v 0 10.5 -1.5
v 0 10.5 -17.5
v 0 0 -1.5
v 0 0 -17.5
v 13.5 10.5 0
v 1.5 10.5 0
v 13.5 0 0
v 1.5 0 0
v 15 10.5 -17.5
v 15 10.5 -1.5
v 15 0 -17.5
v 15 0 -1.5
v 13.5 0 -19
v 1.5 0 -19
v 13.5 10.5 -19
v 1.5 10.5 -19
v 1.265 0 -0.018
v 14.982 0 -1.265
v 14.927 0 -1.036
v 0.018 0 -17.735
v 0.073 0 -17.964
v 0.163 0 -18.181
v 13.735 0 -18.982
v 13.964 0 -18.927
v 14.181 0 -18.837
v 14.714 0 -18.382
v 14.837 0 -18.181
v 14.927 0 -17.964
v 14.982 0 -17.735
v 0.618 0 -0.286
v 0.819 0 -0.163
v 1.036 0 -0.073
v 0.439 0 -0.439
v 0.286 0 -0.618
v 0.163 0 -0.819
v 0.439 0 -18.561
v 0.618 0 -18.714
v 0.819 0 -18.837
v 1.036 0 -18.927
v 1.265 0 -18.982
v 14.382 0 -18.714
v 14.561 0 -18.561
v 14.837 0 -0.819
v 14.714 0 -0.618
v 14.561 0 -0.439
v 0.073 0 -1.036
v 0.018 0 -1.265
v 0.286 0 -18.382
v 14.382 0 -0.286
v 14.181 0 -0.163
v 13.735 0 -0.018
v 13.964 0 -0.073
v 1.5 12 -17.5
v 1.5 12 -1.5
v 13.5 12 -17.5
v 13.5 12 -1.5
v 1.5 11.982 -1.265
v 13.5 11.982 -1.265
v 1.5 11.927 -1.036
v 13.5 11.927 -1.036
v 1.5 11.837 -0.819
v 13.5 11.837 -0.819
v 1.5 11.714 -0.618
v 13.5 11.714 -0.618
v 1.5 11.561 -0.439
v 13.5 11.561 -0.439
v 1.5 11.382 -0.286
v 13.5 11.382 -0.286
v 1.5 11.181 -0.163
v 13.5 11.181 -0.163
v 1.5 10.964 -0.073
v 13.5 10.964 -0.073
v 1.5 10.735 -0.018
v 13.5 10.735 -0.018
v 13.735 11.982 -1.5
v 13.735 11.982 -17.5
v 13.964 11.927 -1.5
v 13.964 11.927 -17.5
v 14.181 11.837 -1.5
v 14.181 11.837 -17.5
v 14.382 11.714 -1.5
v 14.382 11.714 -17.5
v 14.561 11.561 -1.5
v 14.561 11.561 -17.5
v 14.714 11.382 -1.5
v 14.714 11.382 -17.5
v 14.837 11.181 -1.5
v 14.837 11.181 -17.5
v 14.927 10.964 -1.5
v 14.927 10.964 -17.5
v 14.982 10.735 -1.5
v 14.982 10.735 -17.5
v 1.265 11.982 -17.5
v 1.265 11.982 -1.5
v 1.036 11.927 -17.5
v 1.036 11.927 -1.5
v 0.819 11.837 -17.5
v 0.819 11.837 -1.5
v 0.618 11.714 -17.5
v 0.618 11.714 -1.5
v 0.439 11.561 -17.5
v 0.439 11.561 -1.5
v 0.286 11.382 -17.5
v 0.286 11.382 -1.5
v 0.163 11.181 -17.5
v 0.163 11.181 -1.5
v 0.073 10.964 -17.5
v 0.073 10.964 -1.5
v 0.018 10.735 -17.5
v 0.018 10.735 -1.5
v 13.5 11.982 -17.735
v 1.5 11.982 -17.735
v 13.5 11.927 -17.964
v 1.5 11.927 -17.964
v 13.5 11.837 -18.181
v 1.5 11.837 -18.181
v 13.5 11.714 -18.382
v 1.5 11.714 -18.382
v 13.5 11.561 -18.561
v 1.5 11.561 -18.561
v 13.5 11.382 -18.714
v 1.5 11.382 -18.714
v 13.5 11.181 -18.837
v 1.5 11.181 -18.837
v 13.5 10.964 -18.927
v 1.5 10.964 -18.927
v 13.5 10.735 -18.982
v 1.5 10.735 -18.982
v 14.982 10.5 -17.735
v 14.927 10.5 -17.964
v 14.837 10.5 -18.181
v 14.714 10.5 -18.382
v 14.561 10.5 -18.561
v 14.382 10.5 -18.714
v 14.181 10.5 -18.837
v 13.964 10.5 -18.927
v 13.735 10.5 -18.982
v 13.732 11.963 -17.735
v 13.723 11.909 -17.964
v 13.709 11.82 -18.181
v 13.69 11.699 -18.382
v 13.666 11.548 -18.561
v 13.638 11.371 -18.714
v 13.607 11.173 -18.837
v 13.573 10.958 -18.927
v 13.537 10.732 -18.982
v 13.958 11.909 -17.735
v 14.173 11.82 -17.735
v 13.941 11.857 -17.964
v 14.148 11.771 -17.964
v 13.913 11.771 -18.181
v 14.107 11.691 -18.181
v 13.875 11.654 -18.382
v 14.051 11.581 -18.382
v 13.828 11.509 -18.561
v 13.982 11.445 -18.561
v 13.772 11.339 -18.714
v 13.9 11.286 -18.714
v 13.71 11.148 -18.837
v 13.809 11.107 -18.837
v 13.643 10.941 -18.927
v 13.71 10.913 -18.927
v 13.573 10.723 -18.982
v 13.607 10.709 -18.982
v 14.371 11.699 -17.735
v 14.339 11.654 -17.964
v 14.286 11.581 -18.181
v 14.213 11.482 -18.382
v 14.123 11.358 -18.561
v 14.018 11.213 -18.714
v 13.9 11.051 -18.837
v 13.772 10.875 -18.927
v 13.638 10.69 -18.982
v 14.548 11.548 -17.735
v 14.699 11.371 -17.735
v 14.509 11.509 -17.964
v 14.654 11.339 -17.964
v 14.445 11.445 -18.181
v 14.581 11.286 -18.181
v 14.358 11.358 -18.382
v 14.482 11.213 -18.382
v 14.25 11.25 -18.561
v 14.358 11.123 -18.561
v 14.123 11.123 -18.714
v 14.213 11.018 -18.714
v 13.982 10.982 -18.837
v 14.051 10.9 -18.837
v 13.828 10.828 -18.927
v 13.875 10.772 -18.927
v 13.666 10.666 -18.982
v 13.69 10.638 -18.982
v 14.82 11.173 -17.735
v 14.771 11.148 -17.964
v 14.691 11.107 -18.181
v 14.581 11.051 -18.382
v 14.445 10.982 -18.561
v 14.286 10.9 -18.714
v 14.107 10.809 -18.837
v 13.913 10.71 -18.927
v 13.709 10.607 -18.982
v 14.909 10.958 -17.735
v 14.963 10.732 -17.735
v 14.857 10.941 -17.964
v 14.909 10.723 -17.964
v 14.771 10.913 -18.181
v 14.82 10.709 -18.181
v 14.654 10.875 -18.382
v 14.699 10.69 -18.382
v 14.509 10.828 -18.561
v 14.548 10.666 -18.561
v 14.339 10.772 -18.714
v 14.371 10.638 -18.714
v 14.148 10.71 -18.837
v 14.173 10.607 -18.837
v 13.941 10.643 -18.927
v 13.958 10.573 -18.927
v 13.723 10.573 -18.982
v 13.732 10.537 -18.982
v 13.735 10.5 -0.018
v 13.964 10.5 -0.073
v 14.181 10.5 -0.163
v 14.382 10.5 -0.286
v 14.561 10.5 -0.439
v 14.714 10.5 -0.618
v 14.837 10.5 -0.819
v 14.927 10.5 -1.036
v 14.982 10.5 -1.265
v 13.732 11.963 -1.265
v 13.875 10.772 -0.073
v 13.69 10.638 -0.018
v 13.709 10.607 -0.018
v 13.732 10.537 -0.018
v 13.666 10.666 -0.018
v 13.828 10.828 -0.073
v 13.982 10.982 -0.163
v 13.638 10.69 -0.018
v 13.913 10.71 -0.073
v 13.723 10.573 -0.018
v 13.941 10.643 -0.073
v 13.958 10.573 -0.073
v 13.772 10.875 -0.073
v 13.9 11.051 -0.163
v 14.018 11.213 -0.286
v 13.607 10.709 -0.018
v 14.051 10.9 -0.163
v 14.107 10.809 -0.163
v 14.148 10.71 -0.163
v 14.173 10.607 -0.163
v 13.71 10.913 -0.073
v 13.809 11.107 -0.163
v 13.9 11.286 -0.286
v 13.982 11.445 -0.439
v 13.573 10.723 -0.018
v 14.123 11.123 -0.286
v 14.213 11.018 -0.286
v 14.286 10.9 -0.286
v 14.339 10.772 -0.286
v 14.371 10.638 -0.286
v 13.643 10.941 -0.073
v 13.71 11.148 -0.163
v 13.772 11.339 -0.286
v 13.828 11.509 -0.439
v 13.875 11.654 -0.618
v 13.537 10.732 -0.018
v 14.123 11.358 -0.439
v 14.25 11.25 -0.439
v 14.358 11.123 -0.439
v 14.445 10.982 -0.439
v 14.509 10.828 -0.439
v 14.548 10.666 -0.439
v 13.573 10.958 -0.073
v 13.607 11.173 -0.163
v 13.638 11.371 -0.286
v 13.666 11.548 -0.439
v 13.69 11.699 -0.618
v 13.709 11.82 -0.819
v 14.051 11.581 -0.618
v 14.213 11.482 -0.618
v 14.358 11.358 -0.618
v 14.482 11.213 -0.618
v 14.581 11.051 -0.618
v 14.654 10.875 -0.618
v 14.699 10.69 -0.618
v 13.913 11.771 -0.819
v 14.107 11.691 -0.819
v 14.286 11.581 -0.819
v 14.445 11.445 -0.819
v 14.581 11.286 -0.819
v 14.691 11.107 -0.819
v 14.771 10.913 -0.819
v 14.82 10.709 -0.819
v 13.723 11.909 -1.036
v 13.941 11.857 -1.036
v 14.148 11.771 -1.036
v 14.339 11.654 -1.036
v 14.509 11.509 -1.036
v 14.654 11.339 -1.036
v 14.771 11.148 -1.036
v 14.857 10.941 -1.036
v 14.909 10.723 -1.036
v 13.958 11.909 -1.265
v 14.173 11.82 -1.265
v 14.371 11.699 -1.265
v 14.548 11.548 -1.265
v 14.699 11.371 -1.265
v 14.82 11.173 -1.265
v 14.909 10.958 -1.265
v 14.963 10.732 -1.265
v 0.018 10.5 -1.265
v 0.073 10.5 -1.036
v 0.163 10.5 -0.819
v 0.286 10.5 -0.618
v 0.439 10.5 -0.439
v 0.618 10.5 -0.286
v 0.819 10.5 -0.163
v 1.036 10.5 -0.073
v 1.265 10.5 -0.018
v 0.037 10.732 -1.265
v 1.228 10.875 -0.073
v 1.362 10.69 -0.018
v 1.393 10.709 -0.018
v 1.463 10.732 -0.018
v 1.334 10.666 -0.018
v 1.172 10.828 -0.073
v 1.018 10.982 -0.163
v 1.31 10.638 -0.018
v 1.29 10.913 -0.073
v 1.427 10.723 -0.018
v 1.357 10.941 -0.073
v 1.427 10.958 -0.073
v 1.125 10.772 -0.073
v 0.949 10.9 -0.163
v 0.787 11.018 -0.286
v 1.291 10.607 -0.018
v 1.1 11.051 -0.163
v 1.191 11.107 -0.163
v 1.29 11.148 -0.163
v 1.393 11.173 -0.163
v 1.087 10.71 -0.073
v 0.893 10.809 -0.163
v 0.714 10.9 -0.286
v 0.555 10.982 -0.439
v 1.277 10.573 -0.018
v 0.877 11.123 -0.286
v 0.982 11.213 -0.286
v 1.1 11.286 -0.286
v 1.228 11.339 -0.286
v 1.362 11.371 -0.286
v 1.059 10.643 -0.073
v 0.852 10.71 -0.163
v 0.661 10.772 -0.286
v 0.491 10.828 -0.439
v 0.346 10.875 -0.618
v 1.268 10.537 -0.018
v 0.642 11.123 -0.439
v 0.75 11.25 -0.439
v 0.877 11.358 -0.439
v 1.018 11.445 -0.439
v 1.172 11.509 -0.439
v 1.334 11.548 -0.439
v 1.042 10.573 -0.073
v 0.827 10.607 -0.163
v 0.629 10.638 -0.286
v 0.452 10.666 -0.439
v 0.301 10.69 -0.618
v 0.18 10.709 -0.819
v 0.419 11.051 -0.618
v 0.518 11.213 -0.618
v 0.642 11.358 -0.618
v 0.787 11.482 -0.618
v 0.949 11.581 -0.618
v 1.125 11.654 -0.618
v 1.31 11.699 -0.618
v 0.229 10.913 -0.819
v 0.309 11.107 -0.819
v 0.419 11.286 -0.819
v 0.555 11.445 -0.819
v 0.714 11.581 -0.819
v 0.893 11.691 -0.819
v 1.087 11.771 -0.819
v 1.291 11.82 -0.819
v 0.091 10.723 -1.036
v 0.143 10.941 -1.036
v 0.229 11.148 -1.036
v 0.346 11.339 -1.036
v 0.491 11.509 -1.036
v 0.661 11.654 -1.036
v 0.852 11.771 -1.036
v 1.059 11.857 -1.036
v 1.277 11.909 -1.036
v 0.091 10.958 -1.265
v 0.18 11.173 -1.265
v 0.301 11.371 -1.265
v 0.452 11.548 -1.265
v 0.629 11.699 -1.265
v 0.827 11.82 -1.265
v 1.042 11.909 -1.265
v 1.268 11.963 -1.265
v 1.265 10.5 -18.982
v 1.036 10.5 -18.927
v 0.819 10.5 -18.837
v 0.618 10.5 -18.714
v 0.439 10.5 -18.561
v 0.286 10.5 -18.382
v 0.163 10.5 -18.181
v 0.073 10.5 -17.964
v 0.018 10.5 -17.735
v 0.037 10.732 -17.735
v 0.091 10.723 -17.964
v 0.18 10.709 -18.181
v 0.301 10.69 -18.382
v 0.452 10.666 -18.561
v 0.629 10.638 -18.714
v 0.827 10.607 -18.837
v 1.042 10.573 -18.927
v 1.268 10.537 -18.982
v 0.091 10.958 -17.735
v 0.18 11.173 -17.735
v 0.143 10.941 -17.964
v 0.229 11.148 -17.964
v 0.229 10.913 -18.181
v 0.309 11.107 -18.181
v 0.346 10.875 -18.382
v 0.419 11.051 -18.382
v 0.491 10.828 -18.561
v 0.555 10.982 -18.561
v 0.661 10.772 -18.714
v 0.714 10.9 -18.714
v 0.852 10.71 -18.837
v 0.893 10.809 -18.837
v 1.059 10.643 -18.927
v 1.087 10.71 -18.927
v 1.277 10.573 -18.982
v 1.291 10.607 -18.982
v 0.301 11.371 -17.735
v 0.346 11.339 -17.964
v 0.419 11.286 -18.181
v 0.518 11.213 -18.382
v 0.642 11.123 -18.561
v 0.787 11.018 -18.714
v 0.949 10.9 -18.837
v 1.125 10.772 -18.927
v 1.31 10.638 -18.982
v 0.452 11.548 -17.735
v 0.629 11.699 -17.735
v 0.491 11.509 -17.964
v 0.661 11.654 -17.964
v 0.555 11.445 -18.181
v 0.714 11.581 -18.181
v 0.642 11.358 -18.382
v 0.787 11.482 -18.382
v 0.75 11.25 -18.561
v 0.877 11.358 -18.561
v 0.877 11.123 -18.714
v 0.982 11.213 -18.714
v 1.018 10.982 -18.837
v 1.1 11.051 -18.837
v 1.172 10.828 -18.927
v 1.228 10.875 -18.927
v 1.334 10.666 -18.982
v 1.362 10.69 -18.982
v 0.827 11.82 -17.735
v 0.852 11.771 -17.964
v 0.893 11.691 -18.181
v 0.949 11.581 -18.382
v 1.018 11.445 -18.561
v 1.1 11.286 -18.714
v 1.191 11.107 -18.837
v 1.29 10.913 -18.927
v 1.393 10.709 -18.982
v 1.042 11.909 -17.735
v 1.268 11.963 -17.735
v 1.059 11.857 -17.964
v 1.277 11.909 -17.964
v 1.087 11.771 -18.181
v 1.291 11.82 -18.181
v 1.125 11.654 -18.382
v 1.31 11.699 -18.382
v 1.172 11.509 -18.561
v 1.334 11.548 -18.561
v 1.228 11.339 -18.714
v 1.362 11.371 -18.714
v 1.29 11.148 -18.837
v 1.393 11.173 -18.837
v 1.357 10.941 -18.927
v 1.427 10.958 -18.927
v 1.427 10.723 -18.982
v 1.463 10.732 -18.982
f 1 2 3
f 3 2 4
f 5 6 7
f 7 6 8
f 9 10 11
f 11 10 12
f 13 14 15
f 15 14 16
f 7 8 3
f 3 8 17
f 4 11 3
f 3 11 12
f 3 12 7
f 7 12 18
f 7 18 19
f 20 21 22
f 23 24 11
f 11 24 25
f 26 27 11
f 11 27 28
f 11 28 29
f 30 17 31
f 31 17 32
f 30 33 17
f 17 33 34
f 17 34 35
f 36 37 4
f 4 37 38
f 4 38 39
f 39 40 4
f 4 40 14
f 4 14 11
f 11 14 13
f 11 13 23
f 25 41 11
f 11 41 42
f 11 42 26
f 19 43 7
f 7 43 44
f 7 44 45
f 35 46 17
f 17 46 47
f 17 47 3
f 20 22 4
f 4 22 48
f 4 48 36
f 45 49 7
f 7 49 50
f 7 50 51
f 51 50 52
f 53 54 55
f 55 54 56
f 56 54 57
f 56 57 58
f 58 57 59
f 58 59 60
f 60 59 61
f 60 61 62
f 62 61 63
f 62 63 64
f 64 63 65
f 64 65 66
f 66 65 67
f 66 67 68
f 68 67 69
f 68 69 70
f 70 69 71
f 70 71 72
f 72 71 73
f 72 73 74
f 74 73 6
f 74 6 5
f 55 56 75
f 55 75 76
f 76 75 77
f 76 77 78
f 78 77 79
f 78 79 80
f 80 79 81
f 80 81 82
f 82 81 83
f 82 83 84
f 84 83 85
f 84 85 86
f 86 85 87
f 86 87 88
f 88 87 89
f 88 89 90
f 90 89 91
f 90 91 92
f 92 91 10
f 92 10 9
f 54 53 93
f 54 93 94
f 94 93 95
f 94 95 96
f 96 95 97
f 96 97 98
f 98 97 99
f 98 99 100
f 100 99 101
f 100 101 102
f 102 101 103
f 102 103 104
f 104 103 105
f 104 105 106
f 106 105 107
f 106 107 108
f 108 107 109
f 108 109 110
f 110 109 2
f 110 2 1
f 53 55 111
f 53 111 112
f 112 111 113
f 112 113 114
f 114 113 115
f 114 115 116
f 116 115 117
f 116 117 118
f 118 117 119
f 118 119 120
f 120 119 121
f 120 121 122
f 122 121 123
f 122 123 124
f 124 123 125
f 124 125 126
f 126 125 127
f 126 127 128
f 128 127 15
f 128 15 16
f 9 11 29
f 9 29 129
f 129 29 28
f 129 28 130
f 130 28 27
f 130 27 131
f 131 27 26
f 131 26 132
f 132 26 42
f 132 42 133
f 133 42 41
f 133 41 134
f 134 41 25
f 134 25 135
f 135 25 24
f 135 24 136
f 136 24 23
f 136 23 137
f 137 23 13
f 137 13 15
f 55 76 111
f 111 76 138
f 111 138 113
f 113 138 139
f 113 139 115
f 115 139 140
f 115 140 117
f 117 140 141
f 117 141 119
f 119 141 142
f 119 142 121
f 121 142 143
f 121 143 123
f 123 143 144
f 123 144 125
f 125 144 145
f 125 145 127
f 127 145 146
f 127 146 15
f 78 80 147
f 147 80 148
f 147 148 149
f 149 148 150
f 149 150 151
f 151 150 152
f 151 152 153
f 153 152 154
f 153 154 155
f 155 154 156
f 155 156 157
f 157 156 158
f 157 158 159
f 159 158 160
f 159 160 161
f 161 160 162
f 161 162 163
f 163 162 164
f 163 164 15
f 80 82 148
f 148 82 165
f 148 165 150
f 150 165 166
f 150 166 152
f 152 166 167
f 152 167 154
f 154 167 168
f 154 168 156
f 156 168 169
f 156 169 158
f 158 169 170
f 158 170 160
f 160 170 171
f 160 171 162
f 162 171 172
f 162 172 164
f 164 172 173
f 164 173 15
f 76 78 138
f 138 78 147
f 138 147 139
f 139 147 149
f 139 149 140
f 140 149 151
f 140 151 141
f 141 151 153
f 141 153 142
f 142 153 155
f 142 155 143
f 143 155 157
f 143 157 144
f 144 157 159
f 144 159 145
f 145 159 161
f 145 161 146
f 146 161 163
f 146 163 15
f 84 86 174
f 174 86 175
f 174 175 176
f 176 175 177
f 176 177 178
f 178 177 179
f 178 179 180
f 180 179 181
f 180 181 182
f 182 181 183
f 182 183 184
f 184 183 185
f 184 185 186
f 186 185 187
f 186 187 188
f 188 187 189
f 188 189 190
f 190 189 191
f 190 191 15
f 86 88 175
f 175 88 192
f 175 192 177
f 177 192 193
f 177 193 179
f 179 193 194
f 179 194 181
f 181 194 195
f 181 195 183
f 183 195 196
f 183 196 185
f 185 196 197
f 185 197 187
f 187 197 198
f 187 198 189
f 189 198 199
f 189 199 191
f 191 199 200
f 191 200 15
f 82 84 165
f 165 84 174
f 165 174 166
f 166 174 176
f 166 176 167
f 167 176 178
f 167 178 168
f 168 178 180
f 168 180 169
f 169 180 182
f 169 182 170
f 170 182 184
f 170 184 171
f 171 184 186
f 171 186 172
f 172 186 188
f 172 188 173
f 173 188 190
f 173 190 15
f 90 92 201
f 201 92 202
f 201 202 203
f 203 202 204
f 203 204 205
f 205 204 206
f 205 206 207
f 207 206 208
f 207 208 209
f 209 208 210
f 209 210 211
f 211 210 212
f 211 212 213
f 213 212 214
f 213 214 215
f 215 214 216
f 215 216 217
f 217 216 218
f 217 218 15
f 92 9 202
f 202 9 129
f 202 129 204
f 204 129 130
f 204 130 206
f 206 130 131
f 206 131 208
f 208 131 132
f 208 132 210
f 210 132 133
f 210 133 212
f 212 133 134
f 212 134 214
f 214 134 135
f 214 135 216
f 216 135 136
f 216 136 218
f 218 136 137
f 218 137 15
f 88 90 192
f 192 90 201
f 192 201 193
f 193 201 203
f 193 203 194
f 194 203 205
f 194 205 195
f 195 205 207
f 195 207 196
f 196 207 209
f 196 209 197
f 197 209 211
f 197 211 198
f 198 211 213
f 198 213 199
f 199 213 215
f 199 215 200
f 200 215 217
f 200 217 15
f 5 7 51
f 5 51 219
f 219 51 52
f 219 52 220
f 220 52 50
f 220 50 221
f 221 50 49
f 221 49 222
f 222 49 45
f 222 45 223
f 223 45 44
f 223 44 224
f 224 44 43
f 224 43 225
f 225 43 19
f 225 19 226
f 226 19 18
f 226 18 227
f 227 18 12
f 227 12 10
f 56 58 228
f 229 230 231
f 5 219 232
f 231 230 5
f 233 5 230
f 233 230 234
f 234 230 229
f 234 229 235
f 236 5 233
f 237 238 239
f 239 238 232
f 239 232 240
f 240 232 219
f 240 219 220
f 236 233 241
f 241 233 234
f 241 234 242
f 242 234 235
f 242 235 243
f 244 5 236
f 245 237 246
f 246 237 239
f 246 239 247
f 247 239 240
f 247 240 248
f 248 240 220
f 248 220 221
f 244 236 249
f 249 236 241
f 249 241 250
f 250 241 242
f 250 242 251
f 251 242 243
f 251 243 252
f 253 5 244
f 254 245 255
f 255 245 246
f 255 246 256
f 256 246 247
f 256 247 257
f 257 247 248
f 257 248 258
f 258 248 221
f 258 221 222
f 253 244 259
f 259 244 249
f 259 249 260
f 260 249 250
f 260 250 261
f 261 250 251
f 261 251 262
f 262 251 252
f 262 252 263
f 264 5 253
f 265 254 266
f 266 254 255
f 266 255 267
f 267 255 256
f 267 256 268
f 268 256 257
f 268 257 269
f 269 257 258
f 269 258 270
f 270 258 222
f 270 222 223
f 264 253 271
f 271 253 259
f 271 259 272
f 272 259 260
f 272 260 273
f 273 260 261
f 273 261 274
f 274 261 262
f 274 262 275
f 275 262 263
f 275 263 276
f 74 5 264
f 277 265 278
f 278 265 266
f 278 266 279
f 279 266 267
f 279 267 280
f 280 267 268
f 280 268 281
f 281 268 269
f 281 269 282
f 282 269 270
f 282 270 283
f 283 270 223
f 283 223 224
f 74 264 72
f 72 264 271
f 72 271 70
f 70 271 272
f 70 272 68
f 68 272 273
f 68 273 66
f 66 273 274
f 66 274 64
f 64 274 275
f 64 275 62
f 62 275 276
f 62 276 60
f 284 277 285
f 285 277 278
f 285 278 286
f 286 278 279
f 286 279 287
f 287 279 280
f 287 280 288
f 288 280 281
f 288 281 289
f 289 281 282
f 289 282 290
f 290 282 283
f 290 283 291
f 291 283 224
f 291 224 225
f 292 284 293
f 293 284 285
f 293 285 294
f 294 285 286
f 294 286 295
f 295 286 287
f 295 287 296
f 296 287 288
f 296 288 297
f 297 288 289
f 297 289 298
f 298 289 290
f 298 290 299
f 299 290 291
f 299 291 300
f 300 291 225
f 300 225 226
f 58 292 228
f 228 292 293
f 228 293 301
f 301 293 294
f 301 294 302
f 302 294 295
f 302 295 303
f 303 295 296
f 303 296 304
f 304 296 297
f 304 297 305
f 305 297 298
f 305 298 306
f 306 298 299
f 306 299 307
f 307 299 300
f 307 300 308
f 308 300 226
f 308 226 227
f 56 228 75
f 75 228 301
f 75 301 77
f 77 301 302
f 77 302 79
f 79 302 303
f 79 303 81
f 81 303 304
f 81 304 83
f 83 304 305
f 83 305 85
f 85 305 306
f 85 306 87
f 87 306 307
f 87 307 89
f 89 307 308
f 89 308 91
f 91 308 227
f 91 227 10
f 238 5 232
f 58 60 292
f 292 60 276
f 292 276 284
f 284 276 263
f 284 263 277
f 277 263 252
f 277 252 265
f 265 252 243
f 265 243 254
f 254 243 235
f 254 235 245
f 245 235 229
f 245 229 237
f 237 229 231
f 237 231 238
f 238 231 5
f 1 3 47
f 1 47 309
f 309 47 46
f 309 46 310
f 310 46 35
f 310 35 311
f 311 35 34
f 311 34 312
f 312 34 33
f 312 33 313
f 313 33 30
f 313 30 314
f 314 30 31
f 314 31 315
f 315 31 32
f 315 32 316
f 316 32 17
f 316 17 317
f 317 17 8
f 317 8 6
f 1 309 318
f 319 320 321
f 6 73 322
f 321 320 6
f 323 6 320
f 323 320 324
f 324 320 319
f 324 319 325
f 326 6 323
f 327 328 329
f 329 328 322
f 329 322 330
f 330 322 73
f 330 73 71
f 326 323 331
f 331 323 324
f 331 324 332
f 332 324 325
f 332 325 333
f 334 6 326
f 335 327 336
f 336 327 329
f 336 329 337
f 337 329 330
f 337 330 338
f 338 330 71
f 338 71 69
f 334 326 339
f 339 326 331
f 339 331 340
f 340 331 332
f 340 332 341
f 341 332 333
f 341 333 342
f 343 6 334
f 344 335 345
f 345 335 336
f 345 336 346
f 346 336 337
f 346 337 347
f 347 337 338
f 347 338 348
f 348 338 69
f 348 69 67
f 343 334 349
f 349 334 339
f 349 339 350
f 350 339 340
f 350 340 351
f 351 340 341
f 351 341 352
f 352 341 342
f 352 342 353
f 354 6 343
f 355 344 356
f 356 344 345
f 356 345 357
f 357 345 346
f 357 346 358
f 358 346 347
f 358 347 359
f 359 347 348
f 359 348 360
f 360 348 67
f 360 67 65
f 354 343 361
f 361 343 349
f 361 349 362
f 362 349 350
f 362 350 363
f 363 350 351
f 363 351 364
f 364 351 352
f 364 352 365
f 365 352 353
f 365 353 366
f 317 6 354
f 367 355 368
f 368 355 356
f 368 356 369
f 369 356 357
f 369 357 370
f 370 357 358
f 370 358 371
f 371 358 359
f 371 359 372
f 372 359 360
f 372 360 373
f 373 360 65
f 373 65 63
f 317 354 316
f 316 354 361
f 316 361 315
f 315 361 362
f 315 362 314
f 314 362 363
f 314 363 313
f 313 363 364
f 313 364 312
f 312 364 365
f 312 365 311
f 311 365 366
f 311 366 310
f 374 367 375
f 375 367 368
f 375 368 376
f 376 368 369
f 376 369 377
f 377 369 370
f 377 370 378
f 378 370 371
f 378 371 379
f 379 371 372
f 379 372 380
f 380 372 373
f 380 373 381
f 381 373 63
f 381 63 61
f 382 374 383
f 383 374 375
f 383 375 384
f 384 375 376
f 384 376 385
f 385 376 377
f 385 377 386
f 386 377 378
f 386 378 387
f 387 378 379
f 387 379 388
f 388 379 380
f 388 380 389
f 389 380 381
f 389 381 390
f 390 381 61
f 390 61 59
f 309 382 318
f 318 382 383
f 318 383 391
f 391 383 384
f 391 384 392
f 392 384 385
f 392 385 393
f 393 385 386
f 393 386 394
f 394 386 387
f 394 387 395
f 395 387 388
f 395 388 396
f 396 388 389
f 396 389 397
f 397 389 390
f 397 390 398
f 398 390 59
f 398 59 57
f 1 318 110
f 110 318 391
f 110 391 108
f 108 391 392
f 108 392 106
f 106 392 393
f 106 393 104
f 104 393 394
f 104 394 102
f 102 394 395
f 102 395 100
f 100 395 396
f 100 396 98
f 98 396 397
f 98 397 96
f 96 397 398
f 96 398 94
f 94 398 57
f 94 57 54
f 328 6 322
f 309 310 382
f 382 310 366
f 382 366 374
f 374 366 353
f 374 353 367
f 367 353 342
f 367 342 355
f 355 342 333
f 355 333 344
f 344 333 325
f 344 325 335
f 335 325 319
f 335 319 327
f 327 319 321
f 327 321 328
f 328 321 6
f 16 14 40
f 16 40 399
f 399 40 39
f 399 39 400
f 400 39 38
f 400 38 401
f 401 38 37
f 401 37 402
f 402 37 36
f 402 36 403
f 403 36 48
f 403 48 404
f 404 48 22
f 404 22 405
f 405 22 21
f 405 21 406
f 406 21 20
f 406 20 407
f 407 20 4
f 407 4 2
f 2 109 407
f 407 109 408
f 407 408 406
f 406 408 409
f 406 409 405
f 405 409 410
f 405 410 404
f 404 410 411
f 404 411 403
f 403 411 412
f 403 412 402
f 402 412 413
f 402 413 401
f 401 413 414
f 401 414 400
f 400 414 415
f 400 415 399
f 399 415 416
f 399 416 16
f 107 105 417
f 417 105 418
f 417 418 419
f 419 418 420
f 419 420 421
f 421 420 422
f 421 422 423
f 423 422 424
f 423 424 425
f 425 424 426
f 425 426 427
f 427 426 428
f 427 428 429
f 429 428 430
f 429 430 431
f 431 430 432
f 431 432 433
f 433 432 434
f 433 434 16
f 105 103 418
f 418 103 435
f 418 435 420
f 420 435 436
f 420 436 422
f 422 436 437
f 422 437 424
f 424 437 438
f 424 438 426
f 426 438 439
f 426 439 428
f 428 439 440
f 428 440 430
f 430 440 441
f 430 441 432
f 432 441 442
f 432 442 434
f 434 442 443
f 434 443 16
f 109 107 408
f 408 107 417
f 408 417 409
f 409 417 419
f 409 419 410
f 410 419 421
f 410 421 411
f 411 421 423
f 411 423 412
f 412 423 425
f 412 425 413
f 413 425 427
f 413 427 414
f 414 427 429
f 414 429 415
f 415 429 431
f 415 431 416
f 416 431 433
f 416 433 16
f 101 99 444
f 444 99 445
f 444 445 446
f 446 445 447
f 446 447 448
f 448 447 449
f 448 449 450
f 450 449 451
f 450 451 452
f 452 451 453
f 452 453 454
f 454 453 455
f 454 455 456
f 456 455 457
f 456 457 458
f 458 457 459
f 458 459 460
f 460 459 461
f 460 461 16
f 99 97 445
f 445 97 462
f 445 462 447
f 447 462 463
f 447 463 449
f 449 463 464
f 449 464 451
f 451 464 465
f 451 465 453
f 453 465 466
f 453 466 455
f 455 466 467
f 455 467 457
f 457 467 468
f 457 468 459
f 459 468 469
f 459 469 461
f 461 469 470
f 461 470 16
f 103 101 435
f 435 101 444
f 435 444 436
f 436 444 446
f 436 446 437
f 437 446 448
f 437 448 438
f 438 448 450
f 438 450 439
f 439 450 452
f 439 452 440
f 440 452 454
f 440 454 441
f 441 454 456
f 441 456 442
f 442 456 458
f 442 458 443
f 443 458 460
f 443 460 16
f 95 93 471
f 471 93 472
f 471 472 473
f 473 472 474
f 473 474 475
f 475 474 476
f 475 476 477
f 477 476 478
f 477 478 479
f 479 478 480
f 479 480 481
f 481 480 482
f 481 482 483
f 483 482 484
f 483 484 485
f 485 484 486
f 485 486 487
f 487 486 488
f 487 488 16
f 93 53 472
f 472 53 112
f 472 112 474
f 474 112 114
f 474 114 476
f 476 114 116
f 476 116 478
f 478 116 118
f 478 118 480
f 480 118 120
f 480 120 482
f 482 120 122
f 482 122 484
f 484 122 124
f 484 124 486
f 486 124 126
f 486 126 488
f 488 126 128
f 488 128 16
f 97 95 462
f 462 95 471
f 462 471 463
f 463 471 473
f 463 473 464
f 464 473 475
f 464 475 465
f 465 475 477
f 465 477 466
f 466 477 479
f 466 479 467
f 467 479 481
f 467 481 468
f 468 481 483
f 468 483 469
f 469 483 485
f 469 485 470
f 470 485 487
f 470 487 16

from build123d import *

# Parameters (mm, degrees)
SKETCH2_W           = 15
SKETCH2_H           = 19
BOSS_EXTRUDE1_DEPTH = 10
SKETCH3_W           = 15
SKETCH3_H           = 19
BOSS_EXTRUDE2_DEPTH = 2
FILLET1_R           = 1.5
FILLET3_R           = 1.5


with BuildPart() as part:
    # Sketch2 → Boss-Extrude1 (new body)
    with BuildSketch(Plane(origin=(0, 0, 0), x_dir=(1, 0, 0), z_dir=(0, 1, 0))):
        with Locations((7.5, 9.5)):
            Rectangle(SKETCH2_W, SKETCH2_H)
    extrude(amount=BOSS_EXTRUDE1_DEPTH)

    # Sketch3 → Boss-Extrude2 (add)
    with BuildSketch(Plane(origin=(0, 10, 0), x_dir=(1, 0, 0), z_dir=(0, 1, 0))):
        with Locations((7.5, 9.5)):
            Rectangle(SKETCH3_W, SKETCH3_H)
    extrude(amount=BOSS_EXTRUDE2_DEPTH)

    # Fillet1
    fillet1_edges = [part.edges().sort_by_distance(p)[0] for p in [
        (0, 12, -9.5),
        (7.5, 12, 0),
        (15, 12, -9.5),
        (7.5, 12, -19),
    ]]
    fillet(fillet1_edges, radius=FILLET1_R)

    # Fillet3
    # the kernel refuses this fillet: 1.5 mm, written as the material it takes off along each edge
    with BuildSketch(Plane(origin=(13.5, 10.5, -1.5), x_dir=(1, 0, 0), z_dir=(0, 0, 1))) as fillet3_piece_1_section:
        Polygon((0, 0), (FILLET3_R, 0), (FILLET3_R, FILLET3_R), (0, FILLET3_R), align=None)
    fillet3_piece_1 = extrude(amount=FILLET3_R, mode=Mode.PRIVATE)
    fillet3_piece_1 = fillet3_piece_1 - Plane(origin=(13.5, 10.5, -1.5), x_dir=(-0.7071067811865475, -0.7071067811865475, 0), z_dir=(0, 0, 1)) * Sphere(FILLET3_R, mode=Mode.PRIVATE)
    add(fillet3_piece_1, mode=Mode.SUBTRACT)
    with BuildSketch(Plane(origin=(1.5, 10.5, -1.5), x_dir=(-1, 0, 0), z_dir=(0, 0, 1))) as fillet3_piece_2_section:
        Polygon((0, 0), (FILLET3_R, 0), (FILLET3_R, -FILLET3_R), (0, -FILLET3_R), align=None)
    fillet3_piece_2 = extrude(amount=FILLET3_R, mode=Mode.PRIVATE)
    fillet3_piece_2 = fillet3_piece_2 - Plane(origin=(1.5, 10.5, -1.5), x_dir=(0.7071067811865475, -0.7071067811865475, 0), z_dir=(0, 0, 1)) * Sphere(FILLET3_R, mode=Mode.PRIVATE)
    add(fillet3_piece_2, mode=Mode.SUBTRACT)
    with BuildSketch(Plane(origin=(13.5, 10.5, -17.5), x_dir=(0, 0, -1), z_dir=(1, 0, 0))) as fillet3_piece_3_section:
        Polygon((0, 0), (FILLET3_R, 0), (FILLET3_R, FILLET3_R), (0, FILLET3_R), align=None)
    fillet3_piece_3 = extrude(amount=FILLET3_R, mode=Mode.PRIVATE)
    fillet3_piece_3 = fillet3_piece_3 - Plane(origin=(13.5, 10.5, -17.5), x_dir=(0, -0.7071067811865475, 0.7071067811865475), z_dir=(1, 0, 0)) * Sphere(FILLET3_R, mode=Mode.PRIVATE)
    add(fillet3_piece_3, mode=Mode.SUBTRACT)
    with BuildSketch(Plane(origin=(1.5, 10.5, -17.5), x_dir=(0, 0, -1), z_dir=(-1, 0, 0))) as fillet3_piece_4_section:
        Polygon((0, 0), (FILLET3_R, 0), (FILLET3_R, -FILLET3_R), (0, -FILLET3_R), align=None)
    fillet3_piece_4 = extrude(amount=FILLET3_R, mode=Mode.PRIVATE)
    fillet3_piece_4 = fillet3_piece_4 - Plane(origin=(1.5, 10.5, -17.5), x_dir=(0, -0.7071067811865475, 0.7071067811865475), z_dir=(-1, 0, 0)) * Sphere(FILLET3_R, mode=Mode.PRIVATE)
    add(fillet3_piece_4, mode=Mode.SUBTRACT)
    with BuildSketch(Plane(origin=(0, 10.5, -19), x_dir=(0, 0, 1), z_dir=(0, -1, 0)), Plane(origin=(15, -3.75, -19), x_dir=(0, 0, 1), z_dir=(0, 1, 0)), Plane(origin=(15, -3.75, 0), x_dir=(-1, 0, 0), z_dir=(0, 1, 0)), Plane(origin=(0, 10.5, 0), x_dir=(1, 0, 0), z_dir=(0, -1, 0))) as fillet3_piece_5:
        with BuildLine():
            CenterArc((FILLET3_R, -FILLET3_R), FILLET3_R, 90, 90)
            Line((0, -FILLET3_R), (0, 0))
            Line((0, 0), (FILLET3_R, 0))
        make_face()
    extrude(amount=14.25, mode=Mode.SUBTRACT)


solid = part.part
